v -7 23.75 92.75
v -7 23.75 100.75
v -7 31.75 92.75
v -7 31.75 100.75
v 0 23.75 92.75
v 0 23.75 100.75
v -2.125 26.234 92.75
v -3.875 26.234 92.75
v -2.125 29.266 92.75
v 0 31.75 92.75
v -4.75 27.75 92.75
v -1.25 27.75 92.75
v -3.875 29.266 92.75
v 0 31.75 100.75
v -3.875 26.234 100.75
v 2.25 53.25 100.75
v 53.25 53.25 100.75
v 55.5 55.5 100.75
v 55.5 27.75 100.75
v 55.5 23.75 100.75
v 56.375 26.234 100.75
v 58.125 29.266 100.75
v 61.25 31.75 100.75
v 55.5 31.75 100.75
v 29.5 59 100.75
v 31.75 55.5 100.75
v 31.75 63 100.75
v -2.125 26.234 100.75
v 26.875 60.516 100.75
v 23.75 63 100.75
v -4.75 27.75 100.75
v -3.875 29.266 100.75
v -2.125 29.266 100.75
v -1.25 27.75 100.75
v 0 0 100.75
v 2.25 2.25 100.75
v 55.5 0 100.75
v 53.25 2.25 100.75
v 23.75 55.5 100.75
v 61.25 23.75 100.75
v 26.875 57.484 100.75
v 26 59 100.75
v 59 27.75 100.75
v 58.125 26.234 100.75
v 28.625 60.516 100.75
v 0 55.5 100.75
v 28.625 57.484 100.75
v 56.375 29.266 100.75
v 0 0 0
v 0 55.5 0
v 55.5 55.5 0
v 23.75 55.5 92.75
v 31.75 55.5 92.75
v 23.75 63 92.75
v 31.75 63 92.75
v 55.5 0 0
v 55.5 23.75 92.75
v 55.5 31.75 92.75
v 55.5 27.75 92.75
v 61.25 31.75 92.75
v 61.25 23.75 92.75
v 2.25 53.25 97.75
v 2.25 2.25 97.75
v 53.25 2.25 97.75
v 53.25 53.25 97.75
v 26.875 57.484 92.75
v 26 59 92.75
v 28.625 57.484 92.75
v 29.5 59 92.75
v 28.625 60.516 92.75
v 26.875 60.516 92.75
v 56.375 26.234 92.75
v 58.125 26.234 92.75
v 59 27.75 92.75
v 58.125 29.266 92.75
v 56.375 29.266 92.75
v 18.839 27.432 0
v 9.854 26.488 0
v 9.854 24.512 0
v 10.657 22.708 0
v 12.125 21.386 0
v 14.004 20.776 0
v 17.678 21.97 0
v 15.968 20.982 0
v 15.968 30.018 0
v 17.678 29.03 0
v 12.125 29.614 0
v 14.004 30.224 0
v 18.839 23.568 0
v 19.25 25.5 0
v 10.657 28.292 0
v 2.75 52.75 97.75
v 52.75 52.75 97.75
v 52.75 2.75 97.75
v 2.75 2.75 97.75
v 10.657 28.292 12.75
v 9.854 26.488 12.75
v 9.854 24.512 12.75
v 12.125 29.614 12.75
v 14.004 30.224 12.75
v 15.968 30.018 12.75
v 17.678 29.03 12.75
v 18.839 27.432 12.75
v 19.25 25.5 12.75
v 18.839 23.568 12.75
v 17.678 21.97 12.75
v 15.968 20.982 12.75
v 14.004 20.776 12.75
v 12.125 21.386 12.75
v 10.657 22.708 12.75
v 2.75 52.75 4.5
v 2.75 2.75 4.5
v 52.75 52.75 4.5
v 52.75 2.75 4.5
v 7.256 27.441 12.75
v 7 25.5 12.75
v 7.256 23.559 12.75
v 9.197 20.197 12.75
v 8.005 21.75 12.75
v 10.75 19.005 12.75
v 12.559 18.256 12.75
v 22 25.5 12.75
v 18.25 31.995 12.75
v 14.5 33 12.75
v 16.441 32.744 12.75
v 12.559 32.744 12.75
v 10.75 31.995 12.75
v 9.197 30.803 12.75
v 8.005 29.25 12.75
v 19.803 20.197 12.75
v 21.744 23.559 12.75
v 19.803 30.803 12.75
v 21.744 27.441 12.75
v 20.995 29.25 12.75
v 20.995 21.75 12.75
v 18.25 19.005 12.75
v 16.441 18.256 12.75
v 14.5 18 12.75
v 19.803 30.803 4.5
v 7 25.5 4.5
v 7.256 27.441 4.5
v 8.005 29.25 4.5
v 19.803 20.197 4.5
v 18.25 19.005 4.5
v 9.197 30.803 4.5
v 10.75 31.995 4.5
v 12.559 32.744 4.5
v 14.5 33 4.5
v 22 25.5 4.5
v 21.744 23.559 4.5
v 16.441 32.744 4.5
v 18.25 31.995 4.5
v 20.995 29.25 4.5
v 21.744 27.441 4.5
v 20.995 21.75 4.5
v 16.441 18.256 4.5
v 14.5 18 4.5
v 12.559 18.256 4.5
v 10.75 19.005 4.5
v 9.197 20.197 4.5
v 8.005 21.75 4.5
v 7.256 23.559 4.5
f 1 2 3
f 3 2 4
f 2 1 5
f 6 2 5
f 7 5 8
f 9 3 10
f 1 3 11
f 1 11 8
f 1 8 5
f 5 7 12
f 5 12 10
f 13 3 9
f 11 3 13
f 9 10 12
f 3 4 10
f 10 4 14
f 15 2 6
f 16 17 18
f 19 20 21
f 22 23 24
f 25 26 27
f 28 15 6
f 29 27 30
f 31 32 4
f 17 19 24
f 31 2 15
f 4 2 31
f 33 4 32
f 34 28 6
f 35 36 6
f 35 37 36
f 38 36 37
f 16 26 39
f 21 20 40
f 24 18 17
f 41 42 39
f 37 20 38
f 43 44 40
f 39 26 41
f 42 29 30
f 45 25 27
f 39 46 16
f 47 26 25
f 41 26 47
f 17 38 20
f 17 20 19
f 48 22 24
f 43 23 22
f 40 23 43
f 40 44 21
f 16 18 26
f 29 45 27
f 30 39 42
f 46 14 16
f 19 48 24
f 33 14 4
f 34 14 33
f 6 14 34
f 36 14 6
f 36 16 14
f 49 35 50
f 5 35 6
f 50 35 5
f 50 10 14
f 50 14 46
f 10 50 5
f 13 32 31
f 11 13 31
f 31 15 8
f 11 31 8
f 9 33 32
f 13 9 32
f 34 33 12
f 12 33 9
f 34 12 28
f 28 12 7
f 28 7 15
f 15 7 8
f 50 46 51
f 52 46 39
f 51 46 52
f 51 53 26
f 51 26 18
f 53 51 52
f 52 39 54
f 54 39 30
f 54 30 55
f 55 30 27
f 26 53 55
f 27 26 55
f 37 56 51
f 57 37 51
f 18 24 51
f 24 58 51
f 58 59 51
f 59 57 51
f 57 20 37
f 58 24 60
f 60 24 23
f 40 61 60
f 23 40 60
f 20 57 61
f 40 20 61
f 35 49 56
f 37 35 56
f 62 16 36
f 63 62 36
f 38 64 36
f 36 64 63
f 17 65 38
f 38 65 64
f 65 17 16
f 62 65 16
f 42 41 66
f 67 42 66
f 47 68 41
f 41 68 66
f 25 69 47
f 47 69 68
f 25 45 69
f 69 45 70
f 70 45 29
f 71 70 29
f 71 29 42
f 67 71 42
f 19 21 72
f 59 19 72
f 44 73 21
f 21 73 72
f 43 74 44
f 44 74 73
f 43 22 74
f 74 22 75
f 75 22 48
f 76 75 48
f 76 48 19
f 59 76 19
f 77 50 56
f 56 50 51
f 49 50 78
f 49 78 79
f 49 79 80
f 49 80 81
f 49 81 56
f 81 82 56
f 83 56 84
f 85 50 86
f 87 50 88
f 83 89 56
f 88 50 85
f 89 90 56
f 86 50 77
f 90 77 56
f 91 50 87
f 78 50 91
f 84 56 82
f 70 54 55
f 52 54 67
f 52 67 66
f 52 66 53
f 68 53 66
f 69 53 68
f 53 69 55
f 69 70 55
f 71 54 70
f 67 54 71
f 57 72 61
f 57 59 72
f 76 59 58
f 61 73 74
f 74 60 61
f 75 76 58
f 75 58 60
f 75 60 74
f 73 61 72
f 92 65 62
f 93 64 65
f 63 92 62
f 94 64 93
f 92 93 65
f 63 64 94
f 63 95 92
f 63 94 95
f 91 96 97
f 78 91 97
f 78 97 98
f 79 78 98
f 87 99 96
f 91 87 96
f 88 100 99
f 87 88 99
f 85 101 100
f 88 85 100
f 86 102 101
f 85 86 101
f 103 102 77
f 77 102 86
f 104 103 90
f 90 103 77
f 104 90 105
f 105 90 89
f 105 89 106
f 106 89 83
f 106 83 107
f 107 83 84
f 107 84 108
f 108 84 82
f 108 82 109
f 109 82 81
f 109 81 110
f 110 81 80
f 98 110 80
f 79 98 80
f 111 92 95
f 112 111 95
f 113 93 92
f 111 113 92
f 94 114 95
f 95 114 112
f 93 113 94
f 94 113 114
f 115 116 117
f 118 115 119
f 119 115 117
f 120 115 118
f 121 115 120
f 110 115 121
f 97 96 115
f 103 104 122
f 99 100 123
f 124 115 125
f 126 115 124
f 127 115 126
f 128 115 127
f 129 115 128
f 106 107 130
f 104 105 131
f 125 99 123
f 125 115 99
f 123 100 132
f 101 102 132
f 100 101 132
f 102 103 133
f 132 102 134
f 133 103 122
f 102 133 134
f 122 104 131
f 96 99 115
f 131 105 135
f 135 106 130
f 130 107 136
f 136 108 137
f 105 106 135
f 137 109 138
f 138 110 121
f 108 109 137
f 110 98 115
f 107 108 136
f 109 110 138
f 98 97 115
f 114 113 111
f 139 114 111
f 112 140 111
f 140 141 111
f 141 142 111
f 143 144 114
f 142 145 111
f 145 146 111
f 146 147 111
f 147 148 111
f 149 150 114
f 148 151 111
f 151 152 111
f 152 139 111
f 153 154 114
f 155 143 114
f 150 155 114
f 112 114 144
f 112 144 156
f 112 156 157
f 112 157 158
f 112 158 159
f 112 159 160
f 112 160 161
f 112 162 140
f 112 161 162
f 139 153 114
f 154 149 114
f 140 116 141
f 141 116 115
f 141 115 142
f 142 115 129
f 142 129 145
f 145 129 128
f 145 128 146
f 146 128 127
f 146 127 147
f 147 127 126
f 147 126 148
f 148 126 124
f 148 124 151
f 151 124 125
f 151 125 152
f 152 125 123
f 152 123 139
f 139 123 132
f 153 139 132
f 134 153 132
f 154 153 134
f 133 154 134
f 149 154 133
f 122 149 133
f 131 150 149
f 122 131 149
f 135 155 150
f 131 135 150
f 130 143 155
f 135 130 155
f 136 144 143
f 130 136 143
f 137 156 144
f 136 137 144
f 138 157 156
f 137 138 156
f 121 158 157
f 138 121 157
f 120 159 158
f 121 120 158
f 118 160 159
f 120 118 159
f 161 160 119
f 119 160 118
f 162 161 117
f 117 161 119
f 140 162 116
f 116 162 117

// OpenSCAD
pared=4.5;
diffLado = 8;
fibOpPlug = 12.75;
frenteH = 85+3+fibOpPlug;
diffW = 51;
torHemW=8;
fibW=9.5;
torHemOffset = (diffW/2)-
				  (torHemW/2);

difference(){
//Area
frenteArea();
//Hueco
translate([(pared/2)+.5,(pared/2)+.5,pared])
cube([diffW-1,diffW-1,frenteH]);
//Diffracter
translate([pared/2,pared/2,frenteH-3])
cube([diffW,diffW,4]);


//Plug base
translate([
				pared+diffLado+2,
				diffW/2,
				-0.1
			])
cylinder(r=(fibW/2)+1,fibOpPlug+0.2);
}


module frenteArea(){
//Cuadro
cube([
		diffW+pared,
		diffW+pared,
		frenteH
	]);
//Tornillos hembra
//translate([
//				(diffW/2)+(pared/2),
//				-(torHemW/2)+1,
//				frenteH-torHemW])
//tornHemBase();

translate([
				(diffW/2)+(pared/2),
				(diffW+(2*pared)-1),
				frenteH-torHemW])
tornHemBase();

translate([
				-(torHemW/2)+1,
				(diffW/2)+(pared/2),
				frenteH-torHemW])
tornHemBase();
translate([
				diffW+(torHemW/2)+(pared/2),
				(diffW/2)+(pared/2),
				frenteH-torHemW])
tornHemBase();



}

translate([
				pared+diffLado+2,
				diffW/2,
				0
			])
plugBase();

module plugBase(){
difference(){
cylinder(r=15/2,fibOpPlug);
translate([0,0,-0.1])
cylinder(r=fibW/2,fibOpPlug+0.2);

}
}

module tornHemBase(){
difference(){
translate([-torHemW/2,-torHemW/2,0])
cube([torHemW,torHemW,torHemW]);
translate([0,0,-0.1])
cylinder(r=3.5/2,torHemW+0.2);

}
}
